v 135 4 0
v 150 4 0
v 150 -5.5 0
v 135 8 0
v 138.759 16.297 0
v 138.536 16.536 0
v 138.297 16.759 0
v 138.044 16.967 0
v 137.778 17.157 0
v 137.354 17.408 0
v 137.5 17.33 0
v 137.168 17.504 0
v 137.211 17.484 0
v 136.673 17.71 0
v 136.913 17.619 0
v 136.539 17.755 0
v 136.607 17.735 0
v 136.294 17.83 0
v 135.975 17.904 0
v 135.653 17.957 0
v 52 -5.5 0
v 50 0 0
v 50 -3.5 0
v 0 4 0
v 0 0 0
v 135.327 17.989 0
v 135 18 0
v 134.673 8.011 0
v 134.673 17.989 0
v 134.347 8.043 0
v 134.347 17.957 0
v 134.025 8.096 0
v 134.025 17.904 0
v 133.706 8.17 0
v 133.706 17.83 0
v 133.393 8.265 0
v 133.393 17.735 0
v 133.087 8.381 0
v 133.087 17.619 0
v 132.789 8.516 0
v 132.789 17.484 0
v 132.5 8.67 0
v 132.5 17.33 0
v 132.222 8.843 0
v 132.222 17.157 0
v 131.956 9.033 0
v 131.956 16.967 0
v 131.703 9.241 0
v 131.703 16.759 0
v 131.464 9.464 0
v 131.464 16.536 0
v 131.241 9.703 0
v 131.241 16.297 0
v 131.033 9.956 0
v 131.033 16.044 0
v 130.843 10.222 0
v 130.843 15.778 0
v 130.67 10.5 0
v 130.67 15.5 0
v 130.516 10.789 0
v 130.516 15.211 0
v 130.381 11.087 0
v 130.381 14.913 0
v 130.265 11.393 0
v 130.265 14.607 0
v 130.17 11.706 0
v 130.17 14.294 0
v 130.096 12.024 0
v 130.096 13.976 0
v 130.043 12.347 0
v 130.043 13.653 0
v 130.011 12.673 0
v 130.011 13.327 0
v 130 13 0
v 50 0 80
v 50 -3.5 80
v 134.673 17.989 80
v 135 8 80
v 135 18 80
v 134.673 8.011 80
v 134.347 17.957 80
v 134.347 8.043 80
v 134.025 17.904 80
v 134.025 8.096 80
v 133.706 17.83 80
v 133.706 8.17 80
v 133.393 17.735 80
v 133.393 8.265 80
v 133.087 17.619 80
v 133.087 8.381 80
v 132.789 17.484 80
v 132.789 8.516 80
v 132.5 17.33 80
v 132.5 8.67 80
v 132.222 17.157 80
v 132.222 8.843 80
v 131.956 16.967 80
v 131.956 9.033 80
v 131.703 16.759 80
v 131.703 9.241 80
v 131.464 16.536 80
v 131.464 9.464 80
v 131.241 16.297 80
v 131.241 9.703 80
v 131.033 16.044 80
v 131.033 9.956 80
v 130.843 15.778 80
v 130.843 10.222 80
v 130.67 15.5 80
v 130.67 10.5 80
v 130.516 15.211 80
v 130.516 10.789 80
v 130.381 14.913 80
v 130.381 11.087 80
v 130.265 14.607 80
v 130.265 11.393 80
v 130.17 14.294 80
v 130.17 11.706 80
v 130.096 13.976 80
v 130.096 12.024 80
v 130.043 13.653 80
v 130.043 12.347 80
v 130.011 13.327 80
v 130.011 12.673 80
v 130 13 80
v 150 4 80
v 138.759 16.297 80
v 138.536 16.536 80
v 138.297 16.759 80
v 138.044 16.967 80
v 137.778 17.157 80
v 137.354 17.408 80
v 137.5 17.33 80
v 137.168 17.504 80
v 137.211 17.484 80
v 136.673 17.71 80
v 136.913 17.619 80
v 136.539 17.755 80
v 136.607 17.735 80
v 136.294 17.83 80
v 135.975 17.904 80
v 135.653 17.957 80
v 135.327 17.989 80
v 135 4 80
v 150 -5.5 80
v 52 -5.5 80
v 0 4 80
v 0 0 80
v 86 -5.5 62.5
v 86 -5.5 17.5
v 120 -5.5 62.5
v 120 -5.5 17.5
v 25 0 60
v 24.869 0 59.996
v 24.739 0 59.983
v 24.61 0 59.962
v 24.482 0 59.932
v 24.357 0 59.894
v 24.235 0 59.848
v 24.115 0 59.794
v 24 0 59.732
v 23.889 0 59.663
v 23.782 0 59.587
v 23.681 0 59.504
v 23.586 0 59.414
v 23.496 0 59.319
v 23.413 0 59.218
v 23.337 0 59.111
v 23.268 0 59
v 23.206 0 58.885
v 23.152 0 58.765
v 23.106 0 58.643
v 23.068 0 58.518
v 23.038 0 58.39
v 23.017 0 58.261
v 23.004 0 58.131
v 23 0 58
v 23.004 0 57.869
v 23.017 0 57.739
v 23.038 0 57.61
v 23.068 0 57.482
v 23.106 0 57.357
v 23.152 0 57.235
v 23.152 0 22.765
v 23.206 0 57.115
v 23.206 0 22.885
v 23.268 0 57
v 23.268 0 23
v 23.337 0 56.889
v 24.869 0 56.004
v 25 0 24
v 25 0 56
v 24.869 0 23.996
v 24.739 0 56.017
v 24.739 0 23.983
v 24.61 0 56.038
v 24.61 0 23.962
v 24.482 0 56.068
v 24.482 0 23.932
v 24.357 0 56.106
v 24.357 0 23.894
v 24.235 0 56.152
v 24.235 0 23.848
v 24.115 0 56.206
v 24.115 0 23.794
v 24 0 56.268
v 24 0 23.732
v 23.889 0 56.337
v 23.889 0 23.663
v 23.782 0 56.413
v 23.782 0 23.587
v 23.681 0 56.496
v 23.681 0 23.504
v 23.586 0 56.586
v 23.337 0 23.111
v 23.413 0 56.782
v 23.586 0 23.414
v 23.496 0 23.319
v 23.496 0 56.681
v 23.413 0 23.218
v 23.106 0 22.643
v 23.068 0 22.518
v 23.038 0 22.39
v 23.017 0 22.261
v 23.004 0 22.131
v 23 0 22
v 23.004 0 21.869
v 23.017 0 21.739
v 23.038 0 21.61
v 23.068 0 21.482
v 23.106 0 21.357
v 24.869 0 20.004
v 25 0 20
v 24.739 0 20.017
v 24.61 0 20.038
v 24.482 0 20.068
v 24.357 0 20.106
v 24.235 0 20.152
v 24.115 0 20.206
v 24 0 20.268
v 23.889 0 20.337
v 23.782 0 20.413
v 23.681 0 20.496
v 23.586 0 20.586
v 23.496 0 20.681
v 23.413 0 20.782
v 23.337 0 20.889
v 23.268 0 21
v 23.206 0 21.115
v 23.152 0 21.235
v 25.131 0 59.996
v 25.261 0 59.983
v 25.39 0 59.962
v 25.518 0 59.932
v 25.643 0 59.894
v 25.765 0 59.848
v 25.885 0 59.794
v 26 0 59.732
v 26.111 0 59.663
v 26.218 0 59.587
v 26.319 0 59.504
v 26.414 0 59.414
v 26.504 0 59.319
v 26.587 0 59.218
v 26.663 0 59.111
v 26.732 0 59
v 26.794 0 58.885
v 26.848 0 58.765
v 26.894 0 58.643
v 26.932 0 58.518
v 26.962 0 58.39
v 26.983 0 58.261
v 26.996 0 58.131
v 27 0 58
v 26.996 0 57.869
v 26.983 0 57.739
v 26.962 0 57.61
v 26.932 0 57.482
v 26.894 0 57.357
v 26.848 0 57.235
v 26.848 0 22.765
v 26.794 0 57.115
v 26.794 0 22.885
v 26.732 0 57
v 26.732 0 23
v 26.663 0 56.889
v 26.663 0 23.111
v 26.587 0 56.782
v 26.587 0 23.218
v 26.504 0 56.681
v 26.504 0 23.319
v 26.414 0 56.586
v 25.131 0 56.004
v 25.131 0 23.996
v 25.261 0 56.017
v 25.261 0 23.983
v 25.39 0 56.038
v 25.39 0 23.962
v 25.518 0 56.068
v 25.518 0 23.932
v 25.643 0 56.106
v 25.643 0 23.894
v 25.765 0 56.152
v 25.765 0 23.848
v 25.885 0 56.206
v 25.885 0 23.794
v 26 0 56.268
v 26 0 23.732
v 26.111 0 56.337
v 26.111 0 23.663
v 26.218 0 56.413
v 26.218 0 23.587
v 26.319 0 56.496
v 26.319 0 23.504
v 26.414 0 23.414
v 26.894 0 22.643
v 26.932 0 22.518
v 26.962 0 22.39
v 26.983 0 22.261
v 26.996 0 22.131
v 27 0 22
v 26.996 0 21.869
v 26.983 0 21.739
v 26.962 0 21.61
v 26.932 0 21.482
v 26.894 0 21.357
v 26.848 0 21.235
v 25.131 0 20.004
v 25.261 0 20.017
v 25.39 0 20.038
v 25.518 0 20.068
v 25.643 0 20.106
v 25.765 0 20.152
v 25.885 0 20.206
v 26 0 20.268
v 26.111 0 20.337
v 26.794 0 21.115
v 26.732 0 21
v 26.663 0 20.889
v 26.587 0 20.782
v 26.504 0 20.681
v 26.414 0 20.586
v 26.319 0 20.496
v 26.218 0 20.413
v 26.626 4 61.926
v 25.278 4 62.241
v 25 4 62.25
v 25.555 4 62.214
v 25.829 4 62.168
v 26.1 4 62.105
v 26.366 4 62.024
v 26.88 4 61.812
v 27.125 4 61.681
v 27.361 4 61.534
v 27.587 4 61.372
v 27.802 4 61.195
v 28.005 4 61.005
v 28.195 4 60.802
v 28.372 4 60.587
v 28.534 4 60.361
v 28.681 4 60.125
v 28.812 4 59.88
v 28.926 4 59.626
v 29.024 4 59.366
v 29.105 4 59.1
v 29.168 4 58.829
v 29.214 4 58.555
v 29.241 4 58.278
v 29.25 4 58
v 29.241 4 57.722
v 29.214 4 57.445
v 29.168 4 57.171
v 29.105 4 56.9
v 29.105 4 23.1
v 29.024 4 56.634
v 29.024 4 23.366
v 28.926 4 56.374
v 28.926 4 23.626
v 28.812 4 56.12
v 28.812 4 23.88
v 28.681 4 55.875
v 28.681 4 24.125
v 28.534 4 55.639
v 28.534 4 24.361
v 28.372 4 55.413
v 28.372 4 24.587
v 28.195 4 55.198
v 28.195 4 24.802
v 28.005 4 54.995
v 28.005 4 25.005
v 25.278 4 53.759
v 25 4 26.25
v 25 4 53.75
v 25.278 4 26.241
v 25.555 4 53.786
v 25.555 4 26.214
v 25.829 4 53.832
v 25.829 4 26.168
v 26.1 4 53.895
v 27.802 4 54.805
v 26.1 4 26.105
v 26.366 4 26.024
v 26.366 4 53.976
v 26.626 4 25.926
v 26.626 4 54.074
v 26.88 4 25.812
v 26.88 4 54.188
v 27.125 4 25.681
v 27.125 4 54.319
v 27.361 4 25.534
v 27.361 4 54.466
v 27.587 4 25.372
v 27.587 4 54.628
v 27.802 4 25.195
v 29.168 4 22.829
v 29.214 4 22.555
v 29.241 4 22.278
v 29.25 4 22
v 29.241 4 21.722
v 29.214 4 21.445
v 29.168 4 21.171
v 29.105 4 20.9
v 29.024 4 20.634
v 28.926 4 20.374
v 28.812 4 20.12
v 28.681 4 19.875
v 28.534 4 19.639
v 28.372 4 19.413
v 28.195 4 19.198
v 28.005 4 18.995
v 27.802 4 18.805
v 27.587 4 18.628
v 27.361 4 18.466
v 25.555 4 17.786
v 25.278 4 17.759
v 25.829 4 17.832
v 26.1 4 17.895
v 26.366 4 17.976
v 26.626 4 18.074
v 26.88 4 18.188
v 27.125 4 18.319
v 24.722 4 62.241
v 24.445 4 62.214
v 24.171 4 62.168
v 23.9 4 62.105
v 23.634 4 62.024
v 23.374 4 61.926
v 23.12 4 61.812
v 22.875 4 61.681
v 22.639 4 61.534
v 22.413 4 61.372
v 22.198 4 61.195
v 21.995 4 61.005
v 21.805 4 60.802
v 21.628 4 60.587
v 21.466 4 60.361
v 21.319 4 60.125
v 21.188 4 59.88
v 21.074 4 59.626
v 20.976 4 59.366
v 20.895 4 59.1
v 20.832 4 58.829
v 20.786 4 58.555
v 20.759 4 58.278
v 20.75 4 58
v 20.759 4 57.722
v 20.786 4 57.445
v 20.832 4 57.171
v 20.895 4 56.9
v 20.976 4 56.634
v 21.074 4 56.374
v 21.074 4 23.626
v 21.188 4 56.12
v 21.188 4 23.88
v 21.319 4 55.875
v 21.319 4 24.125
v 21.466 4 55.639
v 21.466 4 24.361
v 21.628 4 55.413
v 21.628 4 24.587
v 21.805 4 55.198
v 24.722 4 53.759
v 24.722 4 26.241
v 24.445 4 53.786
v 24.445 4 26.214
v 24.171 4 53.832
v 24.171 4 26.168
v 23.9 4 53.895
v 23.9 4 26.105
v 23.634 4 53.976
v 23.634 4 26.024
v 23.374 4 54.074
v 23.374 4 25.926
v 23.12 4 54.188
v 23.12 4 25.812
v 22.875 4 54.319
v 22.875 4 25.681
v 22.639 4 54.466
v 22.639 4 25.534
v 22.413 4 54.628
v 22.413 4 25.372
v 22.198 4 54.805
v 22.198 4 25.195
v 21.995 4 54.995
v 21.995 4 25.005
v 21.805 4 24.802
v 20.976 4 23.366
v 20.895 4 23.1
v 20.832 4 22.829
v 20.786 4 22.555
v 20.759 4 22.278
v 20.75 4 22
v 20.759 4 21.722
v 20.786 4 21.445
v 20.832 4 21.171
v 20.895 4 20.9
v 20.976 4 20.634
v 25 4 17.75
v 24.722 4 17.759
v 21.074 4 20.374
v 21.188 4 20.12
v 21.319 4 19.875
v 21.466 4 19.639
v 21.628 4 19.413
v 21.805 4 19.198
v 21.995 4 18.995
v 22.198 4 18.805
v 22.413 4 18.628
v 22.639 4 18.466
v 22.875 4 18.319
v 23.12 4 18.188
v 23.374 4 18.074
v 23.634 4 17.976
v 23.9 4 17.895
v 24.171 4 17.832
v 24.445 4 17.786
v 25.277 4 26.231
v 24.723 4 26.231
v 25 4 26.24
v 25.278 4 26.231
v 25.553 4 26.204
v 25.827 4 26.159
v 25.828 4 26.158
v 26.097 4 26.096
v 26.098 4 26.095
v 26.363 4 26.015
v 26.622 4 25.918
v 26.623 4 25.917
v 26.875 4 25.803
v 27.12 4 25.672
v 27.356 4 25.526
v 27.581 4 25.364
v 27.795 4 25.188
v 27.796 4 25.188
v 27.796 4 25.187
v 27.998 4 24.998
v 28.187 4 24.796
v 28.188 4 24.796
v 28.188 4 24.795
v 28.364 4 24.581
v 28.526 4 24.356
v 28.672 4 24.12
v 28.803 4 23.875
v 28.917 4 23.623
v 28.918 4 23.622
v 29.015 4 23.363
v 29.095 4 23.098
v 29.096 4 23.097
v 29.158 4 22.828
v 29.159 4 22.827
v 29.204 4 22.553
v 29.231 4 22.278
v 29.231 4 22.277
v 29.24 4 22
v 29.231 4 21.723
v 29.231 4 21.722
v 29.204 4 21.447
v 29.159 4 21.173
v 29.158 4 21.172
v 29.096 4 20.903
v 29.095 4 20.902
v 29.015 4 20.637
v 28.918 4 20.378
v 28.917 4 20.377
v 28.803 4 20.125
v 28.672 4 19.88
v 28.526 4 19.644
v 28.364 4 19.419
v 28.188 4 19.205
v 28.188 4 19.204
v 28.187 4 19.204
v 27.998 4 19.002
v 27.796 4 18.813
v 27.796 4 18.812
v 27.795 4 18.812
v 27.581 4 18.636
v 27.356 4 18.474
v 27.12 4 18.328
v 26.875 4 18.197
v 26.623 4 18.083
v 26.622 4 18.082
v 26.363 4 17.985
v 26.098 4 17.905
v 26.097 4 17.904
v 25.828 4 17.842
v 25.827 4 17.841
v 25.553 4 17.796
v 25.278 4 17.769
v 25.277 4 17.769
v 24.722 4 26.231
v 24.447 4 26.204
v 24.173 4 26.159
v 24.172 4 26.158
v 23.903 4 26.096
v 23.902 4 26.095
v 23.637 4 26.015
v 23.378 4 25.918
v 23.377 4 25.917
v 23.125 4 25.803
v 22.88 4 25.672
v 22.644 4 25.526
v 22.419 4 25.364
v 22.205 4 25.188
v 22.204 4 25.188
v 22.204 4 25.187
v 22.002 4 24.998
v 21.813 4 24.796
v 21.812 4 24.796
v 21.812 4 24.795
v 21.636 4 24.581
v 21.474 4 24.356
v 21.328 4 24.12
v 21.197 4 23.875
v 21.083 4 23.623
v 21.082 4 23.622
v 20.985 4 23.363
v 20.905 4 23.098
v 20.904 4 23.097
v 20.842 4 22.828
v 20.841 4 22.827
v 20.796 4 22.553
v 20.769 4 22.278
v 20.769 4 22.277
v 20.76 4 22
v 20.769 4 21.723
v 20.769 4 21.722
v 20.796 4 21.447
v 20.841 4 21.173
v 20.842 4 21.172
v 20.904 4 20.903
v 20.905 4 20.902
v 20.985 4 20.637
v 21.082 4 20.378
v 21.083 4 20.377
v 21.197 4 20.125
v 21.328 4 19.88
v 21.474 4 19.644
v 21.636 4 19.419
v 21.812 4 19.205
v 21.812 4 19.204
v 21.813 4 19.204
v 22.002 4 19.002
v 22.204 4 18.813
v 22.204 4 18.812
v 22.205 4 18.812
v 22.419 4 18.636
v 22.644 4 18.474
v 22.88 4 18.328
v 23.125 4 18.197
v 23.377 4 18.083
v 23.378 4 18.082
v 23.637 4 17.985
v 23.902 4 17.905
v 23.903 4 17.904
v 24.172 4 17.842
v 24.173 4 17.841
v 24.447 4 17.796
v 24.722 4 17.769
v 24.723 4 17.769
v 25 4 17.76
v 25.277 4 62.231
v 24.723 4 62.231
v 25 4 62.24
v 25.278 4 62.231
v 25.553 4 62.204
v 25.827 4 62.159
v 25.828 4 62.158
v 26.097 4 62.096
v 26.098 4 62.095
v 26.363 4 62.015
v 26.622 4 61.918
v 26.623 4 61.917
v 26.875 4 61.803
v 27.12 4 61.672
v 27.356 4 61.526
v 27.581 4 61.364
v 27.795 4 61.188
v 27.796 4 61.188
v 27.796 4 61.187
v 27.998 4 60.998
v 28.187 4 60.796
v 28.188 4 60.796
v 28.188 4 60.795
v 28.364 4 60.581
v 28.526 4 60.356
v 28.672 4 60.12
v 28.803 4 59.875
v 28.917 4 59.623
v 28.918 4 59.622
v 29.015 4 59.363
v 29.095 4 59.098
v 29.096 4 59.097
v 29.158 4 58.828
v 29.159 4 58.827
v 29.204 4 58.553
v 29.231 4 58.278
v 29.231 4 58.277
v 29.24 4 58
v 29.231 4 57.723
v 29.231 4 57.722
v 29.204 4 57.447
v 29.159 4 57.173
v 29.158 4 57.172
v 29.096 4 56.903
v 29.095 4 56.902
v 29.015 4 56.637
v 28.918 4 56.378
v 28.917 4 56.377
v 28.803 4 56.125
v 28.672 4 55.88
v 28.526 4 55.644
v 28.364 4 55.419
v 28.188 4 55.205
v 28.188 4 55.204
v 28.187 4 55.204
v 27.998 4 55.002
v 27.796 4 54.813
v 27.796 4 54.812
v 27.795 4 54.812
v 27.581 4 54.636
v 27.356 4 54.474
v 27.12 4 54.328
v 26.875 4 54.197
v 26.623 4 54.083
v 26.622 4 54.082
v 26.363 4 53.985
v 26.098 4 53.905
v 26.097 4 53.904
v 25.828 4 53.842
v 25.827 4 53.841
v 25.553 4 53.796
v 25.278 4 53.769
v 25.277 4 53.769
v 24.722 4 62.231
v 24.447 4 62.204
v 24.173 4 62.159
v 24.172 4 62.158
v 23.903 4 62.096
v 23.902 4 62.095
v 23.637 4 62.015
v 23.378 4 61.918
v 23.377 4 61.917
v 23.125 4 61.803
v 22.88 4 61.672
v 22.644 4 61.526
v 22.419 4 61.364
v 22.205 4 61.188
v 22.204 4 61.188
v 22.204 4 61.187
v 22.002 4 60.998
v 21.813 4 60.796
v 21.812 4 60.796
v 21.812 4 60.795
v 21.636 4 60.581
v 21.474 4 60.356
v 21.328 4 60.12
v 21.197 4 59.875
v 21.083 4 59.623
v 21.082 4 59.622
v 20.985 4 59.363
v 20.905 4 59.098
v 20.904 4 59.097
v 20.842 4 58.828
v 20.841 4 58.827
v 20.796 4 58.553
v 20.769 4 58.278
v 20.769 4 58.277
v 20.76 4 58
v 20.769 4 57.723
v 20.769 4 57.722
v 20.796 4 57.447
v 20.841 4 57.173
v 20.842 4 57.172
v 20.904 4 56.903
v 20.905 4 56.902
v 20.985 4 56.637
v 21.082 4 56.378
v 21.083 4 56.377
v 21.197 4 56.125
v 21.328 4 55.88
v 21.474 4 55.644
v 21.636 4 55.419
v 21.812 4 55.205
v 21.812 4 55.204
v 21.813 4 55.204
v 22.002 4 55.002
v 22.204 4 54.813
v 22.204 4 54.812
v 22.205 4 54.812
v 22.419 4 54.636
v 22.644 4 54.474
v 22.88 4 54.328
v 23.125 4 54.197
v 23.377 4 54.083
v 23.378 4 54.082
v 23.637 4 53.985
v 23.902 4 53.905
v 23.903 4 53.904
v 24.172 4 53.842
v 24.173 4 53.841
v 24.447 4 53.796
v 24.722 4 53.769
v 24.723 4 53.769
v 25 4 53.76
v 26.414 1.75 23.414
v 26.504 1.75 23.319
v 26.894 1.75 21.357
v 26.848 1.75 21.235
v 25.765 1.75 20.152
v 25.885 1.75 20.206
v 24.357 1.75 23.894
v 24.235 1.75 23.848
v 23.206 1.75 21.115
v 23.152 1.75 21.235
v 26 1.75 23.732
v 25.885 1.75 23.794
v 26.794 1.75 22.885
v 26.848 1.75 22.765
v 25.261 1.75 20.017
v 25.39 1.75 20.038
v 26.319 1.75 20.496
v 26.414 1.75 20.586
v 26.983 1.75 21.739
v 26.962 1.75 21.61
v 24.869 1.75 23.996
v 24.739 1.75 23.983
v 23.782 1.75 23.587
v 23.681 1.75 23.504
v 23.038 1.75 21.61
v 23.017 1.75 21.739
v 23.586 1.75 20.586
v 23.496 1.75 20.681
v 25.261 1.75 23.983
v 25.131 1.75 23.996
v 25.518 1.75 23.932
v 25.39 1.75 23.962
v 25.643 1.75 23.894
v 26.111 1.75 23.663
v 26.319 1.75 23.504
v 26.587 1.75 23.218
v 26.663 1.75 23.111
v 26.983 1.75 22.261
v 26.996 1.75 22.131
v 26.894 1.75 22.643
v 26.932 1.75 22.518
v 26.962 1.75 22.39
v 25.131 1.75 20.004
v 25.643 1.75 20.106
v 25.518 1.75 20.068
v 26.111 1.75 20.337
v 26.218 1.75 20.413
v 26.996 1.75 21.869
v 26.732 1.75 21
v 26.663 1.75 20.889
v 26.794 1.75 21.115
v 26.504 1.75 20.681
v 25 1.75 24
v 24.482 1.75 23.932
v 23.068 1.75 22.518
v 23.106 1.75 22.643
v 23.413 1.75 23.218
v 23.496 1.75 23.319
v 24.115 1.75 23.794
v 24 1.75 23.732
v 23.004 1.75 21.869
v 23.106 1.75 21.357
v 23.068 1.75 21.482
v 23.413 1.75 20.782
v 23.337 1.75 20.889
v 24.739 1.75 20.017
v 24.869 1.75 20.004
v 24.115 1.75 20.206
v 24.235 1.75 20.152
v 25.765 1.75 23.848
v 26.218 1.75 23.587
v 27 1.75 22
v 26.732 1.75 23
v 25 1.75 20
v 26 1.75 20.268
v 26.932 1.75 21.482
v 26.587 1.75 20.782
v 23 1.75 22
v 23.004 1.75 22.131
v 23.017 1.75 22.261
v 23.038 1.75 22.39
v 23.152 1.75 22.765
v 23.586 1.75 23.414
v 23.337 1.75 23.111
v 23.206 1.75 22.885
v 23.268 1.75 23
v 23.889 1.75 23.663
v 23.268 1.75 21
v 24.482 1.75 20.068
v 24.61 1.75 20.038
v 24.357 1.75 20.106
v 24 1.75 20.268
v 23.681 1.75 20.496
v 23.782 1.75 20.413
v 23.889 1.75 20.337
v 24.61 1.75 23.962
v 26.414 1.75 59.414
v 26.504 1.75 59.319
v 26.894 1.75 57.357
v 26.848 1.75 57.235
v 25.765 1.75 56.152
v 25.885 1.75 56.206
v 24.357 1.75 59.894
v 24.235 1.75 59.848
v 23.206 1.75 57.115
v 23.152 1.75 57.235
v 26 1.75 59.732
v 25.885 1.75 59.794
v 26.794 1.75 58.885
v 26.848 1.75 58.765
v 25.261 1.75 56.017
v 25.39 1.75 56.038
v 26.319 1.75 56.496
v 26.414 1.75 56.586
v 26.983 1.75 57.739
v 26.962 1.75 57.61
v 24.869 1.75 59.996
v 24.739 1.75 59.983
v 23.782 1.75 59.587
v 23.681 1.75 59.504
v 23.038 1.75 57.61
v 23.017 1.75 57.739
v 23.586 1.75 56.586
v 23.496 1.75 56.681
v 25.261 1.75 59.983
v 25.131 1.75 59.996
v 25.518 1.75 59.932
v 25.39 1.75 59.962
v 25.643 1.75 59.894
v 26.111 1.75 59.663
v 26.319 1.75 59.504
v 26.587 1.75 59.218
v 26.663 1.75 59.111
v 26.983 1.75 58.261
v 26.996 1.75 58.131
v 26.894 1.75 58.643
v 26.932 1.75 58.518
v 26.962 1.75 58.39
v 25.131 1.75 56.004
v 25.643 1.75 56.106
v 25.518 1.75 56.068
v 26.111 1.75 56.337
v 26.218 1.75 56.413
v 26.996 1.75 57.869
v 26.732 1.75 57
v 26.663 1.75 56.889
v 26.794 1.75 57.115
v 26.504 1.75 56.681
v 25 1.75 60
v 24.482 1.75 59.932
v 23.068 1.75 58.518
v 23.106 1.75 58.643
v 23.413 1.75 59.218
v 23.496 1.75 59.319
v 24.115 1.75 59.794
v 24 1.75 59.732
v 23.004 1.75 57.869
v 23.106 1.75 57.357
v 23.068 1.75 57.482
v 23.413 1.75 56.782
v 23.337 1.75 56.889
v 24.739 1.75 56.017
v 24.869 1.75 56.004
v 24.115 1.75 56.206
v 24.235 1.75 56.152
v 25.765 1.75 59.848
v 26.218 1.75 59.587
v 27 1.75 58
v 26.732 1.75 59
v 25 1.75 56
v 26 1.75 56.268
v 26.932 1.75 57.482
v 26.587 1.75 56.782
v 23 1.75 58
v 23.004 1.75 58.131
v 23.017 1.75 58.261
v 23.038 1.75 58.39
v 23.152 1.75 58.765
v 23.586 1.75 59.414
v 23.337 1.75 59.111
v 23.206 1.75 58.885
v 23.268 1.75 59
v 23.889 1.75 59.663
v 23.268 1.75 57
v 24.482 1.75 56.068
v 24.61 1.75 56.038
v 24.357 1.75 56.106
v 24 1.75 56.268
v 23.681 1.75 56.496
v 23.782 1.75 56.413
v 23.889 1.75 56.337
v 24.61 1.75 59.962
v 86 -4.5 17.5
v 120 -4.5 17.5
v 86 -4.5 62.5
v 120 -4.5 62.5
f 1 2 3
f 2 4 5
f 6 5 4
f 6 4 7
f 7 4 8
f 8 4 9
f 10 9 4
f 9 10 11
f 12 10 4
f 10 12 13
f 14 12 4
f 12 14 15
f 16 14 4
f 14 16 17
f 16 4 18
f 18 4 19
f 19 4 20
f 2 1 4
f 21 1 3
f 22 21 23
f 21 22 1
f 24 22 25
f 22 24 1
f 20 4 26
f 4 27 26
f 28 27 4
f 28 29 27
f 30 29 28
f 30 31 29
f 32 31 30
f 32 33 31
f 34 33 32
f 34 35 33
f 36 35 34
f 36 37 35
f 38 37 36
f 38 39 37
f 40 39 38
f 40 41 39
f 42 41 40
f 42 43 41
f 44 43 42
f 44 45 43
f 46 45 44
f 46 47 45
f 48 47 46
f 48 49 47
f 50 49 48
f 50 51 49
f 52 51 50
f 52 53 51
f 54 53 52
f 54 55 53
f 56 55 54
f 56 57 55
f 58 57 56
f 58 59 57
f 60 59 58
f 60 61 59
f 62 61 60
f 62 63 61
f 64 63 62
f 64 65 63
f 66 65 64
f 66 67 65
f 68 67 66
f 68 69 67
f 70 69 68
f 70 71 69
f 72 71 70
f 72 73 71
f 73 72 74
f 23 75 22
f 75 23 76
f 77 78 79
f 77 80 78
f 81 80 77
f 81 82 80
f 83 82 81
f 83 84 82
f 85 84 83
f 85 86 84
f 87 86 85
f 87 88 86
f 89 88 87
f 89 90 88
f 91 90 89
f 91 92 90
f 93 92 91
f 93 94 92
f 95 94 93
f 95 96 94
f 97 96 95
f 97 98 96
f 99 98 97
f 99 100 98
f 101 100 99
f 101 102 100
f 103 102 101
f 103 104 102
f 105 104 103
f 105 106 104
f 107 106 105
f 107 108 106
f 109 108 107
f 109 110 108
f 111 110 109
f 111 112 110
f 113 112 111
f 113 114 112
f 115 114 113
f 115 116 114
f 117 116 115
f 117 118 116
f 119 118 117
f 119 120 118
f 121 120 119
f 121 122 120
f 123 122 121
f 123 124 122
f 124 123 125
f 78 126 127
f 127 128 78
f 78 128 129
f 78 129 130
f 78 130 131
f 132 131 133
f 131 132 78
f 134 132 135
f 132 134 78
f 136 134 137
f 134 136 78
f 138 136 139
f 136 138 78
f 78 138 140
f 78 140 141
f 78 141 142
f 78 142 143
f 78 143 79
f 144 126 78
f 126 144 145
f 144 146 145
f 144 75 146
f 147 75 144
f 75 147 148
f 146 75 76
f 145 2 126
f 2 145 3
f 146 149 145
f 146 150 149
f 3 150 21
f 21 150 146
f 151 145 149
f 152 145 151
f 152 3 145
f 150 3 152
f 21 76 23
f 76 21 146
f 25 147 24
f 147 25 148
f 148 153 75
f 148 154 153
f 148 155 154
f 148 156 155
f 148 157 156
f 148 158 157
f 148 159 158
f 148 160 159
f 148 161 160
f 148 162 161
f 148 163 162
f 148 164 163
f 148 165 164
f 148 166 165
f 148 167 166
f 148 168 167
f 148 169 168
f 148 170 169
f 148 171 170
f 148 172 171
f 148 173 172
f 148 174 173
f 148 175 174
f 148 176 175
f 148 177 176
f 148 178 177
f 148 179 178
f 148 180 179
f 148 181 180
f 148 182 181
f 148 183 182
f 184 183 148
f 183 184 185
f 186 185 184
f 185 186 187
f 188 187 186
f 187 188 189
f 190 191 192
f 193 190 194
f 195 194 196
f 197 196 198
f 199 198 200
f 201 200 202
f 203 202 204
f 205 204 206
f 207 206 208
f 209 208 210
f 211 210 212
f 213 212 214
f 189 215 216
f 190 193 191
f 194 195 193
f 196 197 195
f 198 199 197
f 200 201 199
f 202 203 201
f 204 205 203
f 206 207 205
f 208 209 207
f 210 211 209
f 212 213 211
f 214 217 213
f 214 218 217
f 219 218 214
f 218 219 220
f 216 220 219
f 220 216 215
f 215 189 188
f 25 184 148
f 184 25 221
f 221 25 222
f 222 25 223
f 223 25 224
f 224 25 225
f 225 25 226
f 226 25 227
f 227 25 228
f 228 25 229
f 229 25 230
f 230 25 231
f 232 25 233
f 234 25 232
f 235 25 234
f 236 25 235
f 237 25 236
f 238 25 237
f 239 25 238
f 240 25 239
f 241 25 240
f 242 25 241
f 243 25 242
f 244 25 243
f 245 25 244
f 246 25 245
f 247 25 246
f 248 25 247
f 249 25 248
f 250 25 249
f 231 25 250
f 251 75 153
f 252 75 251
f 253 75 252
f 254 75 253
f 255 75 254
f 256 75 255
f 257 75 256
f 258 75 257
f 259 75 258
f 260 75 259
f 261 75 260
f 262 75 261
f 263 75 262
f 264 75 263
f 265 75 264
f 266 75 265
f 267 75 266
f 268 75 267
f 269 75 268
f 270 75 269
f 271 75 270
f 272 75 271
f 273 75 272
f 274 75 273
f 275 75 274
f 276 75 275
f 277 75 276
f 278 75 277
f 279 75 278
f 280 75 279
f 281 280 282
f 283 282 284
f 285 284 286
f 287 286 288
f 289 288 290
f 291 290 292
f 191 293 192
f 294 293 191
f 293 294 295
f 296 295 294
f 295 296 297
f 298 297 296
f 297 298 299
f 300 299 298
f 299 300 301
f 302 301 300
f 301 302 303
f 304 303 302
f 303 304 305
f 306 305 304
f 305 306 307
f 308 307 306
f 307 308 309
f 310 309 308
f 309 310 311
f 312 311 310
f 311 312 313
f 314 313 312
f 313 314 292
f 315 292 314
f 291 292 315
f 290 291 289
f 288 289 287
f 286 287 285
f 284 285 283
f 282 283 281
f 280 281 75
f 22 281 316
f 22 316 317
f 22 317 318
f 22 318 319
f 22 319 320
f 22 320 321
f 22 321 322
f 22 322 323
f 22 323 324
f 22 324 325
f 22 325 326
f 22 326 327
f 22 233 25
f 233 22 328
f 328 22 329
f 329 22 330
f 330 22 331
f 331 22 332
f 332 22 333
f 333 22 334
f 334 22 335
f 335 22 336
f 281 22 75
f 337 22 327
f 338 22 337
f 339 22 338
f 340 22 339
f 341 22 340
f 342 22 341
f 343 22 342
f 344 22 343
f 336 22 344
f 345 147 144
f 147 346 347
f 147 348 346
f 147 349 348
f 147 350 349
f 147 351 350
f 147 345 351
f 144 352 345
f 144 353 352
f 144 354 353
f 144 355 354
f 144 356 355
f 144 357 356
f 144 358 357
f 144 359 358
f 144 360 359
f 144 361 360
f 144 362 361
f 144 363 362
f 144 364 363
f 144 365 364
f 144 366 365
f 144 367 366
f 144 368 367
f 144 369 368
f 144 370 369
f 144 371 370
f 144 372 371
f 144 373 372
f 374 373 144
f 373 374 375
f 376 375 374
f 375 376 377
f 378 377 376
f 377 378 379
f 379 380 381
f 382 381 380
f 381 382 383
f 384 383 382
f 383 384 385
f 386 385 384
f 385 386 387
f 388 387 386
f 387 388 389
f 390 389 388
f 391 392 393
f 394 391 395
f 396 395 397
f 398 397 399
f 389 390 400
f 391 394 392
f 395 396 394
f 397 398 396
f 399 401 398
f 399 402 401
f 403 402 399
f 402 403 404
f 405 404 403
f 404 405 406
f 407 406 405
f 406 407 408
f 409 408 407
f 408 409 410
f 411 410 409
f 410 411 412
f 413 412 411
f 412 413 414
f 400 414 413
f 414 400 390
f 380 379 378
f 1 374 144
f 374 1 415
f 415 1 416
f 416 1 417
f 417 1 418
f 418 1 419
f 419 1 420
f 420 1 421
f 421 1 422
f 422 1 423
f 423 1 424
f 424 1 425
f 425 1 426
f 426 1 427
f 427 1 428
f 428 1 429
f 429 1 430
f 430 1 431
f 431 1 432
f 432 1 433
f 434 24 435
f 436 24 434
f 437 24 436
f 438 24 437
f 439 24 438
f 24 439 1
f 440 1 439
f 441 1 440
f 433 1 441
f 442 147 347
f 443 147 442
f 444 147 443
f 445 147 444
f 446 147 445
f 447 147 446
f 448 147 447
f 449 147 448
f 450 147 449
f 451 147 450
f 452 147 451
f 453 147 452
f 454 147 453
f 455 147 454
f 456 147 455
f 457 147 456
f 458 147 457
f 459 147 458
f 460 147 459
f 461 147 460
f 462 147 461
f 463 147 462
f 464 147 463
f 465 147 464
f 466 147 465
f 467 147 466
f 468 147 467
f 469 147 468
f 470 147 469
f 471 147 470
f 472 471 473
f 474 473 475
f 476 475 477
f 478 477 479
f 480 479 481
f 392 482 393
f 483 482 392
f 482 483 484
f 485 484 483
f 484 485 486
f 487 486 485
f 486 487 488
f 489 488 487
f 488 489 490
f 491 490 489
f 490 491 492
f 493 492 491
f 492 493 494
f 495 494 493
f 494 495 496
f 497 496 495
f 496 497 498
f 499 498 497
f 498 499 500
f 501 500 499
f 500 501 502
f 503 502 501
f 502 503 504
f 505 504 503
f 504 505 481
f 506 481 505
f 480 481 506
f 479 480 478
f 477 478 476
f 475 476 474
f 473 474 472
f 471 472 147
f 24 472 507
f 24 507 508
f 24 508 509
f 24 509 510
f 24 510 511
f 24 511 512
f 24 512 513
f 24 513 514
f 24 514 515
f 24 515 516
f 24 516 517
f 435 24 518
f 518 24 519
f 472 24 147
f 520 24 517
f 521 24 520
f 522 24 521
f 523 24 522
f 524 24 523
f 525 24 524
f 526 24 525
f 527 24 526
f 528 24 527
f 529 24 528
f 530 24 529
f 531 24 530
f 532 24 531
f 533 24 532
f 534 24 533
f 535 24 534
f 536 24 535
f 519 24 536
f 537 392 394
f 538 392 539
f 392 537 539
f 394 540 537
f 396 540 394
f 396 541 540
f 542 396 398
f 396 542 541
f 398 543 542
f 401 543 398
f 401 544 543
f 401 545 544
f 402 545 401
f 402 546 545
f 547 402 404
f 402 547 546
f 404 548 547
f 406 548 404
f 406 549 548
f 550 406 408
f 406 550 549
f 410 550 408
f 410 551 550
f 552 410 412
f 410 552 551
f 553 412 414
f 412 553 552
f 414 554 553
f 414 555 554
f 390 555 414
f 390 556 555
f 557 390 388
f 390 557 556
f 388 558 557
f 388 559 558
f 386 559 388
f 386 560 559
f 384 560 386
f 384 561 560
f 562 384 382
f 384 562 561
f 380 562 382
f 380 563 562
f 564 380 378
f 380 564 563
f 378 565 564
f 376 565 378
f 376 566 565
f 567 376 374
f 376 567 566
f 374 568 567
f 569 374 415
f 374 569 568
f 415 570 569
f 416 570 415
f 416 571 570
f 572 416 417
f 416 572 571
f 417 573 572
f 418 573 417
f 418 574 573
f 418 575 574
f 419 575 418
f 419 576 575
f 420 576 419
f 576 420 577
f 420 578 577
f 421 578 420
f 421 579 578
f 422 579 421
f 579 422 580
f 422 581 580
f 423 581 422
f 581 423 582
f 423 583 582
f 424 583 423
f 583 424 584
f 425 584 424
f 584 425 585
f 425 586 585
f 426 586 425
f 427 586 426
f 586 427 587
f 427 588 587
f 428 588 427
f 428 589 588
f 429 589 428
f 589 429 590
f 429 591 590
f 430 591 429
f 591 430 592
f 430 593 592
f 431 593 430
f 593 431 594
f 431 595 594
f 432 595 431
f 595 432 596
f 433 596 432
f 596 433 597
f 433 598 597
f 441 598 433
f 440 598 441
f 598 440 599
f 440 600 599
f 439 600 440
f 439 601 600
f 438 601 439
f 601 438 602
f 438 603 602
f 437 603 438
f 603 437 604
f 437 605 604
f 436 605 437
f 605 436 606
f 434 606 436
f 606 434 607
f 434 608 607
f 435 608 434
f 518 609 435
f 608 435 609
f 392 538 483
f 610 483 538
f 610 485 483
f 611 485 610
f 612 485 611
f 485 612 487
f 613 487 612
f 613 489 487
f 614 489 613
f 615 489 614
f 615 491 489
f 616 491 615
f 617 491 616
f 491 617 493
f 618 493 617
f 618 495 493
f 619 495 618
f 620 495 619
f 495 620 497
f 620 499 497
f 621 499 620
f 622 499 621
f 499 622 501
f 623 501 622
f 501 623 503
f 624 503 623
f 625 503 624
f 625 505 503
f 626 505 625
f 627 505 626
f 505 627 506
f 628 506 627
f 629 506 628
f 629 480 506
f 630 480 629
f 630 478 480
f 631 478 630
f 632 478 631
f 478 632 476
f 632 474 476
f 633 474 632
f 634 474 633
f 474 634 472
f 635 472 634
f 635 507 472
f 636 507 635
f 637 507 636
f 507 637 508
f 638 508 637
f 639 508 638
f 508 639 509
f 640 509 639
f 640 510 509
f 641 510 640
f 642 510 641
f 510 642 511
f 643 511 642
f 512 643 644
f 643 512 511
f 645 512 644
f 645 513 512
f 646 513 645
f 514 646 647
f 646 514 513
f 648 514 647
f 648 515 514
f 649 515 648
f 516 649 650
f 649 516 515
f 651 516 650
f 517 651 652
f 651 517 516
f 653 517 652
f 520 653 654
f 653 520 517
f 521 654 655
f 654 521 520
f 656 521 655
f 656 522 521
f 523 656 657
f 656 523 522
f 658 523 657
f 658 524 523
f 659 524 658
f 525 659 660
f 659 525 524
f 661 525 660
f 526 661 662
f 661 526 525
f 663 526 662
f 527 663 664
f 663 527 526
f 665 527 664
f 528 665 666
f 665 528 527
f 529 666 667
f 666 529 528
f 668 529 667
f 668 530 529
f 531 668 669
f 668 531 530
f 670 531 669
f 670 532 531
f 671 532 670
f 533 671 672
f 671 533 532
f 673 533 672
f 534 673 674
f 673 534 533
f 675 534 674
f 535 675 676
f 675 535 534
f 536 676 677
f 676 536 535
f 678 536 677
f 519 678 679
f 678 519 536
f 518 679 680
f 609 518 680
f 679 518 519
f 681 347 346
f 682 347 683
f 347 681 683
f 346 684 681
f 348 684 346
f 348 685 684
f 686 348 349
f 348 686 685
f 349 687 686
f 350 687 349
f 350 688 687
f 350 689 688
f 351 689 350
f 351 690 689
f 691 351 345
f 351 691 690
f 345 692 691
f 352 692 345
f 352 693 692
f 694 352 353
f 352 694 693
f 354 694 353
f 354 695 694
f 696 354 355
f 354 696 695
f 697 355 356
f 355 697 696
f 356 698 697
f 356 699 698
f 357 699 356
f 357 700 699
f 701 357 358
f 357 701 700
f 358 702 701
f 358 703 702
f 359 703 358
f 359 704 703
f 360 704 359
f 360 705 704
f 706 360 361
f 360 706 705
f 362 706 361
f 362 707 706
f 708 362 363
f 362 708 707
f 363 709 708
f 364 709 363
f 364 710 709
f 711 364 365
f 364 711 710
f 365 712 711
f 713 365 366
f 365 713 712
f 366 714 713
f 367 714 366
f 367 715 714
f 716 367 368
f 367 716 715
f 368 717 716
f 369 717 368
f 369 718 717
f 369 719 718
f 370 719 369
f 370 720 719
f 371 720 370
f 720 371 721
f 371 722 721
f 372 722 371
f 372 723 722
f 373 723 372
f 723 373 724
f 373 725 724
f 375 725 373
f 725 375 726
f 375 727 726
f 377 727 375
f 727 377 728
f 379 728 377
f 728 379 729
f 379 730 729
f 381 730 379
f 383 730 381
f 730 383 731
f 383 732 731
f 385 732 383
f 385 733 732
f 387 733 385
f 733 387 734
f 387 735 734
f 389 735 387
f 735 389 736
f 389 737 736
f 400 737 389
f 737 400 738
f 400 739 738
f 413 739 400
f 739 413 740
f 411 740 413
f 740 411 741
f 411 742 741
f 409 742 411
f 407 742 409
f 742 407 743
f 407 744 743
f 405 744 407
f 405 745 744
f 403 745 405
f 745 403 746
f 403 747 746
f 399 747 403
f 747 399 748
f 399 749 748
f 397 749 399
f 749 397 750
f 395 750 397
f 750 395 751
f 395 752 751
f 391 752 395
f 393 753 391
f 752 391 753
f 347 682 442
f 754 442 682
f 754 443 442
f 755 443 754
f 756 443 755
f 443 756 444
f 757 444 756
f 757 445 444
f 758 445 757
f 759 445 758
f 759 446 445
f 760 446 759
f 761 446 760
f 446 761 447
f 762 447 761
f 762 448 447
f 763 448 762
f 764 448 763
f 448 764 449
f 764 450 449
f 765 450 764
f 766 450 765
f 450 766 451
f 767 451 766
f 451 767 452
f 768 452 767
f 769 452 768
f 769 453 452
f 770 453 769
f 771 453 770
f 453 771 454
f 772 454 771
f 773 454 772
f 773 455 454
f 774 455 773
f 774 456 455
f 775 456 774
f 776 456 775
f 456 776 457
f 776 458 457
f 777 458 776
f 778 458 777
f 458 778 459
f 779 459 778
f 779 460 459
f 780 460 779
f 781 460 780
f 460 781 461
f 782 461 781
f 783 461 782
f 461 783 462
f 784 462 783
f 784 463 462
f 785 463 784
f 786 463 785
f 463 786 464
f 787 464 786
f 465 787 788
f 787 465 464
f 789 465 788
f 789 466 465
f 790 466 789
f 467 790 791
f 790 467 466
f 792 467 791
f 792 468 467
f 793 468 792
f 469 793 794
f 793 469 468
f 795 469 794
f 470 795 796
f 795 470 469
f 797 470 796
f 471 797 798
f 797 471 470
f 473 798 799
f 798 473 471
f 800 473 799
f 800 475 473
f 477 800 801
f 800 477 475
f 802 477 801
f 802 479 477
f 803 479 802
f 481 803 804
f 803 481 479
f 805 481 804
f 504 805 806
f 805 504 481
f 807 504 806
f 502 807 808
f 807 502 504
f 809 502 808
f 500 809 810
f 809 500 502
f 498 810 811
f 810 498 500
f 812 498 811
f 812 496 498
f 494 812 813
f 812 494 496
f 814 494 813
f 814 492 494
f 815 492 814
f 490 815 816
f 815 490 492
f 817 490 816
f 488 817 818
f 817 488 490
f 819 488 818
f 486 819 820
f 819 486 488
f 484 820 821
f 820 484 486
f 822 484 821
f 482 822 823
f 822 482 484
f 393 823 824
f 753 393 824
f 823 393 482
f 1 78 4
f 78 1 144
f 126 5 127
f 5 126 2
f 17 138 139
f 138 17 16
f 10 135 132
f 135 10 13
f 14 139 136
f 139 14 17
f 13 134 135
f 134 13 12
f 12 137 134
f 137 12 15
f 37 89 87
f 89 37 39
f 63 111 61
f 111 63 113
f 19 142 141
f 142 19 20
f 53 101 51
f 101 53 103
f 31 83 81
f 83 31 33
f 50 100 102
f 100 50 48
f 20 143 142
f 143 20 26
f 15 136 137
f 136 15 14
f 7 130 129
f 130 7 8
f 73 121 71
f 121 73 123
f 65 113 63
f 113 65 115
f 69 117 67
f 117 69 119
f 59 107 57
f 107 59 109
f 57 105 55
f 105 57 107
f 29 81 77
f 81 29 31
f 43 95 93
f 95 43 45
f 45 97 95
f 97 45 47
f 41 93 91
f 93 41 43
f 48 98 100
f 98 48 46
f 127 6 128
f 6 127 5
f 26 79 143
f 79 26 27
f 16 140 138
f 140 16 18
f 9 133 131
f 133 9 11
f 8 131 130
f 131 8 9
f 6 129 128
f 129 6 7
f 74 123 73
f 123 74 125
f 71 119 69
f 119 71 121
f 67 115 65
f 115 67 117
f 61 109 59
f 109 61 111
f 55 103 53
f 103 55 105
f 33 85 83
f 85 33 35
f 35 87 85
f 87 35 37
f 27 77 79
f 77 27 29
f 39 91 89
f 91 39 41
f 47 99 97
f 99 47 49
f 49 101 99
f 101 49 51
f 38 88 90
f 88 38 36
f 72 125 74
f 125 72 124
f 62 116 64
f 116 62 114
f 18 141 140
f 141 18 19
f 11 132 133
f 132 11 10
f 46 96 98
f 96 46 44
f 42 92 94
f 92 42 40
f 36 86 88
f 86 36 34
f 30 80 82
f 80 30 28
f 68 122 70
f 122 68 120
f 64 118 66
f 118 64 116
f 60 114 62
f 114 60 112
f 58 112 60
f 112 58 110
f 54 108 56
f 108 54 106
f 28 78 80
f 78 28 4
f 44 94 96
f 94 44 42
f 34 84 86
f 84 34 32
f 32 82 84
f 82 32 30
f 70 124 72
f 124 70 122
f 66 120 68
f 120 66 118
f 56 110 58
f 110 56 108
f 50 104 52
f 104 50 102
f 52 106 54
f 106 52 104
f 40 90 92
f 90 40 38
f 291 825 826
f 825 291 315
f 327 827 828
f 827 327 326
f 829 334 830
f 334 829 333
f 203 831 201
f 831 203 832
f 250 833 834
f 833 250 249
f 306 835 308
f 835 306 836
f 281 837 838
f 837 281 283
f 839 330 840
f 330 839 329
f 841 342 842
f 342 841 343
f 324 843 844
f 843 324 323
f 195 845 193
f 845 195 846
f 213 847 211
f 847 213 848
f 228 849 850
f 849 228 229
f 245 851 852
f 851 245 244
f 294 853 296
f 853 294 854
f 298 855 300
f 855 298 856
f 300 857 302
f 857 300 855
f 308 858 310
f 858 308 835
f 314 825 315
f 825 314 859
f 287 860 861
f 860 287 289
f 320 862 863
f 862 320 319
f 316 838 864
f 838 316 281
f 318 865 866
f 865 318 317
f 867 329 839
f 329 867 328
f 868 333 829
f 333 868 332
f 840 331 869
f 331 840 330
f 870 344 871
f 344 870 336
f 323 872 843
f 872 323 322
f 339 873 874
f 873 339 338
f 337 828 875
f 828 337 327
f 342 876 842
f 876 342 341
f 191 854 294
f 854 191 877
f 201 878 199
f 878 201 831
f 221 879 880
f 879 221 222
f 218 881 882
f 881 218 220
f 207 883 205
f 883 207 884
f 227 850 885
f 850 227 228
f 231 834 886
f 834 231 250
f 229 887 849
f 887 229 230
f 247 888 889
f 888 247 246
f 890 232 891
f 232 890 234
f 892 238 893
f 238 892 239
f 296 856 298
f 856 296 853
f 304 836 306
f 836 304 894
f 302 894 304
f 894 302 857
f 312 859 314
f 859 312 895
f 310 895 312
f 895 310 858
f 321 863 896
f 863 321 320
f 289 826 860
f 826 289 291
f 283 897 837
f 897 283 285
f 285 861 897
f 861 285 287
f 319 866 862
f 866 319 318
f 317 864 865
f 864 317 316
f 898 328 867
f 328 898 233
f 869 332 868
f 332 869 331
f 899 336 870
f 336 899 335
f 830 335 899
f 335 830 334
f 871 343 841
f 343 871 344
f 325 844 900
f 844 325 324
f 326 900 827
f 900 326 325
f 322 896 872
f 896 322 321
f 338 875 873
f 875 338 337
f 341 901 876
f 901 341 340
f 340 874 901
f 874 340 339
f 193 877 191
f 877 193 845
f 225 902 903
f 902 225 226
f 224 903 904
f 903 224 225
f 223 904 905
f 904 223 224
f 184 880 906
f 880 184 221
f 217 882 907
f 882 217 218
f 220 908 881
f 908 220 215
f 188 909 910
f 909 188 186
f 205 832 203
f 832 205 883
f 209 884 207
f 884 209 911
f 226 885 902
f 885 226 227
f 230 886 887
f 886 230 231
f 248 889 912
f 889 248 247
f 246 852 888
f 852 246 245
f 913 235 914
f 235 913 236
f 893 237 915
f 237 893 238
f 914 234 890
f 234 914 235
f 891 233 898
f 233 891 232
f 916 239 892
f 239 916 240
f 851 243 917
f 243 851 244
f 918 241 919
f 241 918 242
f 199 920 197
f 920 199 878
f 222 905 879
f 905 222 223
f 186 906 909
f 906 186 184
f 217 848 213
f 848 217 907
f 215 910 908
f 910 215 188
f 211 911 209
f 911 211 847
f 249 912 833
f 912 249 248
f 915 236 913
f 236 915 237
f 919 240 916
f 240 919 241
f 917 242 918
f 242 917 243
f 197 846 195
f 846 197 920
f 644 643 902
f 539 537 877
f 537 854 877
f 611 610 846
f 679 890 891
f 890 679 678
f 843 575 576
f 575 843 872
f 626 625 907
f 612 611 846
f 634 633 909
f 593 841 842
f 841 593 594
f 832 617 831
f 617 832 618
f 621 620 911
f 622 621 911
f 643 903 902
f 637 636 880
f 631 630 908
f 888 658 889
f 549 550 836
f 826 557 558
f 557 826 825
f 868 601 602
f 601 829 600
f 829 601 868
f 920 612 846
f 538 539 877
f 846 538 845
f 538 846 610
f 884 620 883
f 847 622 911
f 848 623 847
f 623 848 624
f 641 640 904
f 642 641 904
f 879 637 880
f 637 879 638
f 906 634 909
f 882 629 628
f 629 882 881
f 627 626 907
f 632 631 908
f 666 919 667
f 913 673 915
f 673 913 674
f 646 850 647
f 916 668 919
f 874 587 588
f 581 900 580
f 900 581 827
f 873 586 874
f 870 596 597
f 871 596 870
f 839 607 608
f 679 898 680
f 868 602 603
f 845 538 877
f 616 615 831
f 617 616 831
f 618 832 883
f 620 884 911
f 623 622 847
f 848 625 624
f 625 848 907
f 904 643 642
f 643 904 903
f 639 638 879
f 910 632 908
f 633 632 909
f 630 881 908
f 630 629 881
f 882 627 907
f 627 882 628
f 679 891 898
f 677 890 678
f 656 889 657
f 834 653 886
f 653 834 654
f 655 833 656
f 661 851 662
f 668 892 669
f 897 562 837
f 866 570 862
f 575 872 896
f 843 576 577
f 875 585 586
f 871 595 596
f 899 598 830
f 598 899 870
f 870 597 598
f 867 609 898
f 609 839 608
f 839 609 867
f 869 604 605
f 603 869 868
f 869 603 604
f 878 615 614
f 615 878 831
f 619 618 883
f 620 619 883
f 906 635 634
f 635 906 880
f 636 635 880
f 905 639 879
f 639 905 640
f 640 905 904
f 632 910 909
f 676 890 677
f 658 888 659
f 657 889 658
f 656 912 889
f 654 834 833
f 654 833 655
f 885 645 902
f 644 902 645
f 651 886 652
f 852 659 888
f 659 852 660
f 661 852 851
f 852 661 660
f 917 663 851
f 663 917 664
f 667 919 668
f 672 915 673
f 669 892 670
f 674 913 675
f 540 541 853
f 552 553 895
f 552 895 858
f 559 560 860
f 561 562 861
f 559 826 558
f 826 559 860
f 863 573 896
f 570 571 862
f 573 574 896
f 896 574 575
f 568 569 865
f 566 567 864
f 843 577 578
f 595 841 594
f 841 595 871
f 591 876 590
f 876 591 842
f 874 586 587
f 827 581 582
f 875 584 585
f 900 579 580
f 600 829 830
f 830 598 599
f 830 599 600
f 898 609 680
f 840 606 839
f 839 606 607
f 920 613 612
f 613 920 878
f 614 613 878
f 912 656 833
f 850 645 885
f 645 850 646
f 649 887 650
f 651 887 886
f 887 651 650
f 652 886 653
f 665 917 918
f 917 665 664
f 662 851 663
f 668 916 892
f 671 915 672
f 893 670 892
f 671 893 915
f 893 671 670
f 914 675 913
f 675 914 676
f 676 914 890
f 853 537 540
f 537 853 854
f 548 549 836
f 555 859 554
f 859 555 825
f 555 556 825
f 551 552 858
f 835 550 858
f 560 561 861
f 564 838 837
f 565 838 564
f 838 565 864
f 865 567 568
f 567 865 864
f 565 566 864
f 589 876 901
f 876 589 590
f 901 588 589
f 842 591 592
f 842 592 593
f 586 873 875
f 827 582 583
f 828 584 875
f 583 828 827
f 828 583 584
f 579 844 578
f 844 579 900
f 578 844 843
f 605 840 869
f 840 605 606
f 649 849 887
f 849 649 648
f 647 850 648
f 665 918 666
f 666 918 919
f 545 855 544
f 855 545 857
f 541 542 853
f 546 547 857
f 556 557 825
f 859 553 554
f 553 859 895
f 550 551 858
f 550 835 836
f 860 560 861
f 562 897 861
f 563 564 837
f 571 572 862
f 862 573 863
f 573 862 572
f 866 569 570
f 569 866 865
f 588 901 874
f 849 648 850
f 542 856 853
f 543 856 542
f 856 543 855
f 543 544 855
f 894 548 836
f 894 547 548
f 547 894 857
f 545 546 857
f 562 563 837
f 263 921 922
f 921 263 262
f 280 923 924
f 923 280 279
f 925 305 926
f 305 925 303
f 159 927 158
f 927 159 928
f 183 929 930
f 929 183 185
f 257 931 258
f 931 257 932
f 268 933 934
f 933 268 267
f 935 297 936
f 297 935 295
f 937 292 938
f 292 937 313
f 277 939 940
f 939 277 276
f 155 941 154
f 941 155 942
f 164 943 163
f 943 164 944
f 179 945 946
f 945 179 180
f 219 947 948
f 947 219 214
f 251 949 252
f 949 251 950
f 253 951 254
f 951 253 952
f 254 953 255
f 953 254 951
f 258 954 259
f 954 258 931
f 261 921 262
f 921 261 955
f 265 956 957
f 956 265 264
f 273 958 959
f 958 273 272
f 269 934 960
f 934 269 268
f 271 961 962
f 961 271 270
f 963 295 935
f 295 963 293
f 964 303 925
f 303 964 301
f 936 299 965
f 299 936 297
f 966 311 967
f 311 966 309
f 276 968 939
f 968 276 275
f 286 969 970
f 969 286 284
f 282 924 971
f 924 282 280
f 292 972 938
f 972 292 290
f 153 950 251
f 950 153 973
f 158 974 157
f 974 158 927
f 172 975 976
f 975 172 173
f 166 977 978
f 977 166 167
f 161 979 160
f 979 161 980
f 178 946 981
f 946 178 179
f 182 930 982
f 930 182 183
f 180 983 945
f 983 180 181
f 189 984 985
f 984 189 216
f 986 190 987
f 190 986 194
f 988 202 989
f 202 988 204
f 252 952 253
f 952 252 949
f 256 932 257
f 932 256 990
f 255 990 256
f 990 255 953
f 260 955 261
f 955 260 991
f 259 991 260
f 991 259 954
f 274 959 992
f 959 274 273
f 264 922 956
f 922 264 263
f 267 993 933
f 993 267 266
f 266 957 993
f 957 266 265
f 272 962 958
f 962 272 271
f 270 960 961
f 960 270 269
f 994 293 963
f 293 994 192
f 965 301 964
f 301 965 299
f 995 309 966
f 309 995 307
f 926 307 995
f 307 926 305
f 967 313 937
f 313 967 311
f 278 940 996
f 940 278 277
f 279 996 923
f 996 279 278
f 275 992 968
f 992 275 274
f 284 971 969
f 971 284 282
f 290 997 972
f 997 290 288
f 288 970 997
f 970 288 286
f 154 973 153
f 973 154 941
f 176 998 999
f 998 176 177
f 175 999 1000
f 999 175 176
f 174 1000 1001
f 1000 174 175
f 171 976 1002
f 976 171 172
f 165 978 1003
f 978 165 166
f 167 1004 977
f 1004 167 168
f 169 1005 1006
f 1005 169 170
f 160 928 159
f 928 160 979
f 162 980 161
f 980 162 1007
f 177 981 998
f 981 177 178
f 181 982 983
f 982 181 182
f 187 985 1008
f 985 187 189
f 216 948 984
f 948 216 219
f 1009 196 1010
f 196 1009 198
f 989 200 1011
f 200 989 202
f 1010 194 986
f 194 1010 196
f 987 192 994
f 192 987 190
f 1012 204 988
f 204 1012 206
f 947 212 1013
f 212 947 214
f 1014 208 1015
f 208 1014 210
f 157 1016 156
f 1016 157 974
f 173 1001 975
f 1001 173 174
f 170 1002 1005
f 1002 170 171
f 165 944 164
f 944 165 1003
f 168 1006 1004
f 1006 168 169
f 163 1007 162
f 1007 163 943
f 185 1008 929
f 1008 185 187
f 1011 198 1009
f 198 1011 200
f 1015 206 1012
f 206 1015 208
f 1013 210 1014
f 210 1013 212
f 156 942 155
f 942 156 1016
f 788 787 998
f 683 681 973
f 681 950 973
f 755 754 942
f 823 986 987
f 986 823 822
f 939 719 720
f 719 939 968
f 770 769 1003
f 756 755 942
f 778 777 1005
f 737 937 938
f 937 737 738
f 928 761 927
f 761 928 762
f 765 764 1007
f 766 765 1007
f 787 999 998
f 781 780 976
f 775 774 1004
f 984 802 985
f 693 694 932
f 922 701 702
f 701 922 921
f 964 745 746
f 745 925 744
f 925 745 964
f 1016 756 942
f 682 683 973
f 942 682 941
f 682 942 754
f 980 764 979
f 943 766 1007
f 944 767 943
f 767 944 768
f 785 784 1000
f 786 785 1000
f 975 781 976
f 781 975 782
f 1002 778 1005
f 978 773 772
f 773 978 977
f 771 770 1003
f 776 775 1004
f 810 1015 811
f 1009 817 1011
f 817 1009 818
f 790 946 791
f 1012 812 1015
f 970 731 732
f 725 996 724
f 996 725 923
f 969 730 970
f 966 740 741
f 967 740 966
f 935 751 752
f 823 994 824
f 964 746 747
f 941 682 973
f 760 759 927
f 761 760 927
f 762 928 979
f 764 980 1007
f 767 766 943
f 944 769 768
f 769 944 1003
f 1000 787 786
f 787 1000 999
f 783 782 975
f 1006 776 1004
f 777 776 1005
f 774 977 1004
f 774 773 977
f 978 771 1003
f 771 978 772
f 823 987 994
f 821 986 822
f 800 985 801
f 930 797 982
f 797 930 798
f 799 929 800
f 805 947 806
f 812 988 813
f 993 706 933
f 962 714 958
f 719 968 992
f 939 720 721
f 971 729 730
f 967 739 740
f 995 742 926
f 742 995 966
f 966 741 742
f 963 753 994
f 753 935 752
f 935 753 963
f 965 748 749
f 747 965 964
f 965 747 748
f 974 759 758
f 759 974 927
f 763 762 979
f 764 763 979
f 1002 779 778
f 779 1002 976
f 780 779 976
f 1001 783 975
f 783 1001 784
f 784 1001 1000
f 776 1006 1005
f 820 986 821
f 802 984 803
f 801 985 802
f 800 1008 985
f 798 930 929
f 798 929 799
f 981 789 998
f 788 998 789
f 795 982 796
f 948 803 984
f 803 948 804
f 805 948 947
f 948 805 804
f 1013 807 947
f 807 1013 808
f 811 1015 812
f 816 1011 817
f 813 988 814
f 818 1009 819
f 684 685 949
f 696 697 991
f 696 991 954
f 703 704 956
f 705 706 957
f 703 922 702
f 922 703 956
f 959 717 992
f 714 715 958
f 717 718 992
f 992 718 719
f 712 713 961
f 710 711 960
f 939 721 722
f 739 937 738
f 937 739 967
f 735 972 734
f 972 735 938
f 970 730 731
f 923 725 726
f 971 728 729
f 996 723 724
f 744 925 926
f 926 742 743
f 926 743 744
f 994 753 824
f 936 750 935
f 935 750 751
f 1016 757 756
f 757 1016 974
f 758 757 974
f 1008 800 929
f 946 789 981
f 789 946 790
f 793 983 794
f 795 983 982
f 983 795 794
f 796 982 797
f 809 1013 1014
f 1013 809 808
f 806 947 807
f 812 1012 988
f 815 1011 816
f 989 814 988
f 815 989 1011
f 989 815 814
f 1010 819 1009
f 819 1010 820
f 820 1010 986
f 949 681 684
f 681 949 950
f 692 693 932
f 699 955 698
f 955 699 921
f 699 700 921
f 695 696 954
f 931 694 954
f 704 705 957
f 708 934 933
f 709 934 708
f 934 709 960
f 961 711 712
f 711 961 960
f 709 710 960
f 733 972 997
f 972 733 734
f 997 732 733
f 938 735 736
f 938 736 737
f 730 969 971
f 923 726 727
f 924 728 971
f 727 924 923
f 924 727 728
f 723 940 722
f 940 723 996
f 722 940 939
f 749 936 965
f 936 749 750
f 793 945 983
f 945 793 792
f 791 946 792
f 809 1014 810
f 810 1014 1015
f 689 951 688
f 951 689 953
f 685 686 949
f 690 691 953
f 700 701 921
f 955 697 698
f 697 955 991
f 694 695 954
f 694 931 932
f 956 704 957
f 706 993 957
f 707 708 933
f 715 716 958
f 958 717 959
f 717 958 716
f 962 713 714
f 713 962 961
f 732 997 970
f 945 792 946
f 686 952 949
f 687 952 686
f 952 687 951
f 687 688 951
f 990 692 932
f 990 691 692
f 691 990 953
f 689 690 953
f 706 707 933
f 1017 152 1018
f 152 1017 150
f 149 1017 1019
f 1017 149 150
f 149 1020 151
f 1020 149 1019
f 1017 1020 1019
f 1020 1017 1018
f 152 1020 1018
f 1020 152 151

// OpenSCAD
// Waste food caddy hook — screws to the inside of a cupboard door.
// A round rail stands off from a back plate on a web; the caddy's rear hook
// drops over the rail into the slot between rail and plate.
//
// Modelling axes: X = along the rail, Y = out from the door (y = 0 is the
// door frame face; the recessed panel is at y = -panel_recess), Z = up.
// print_upright rotates it to stand on one end (rail profile on the bed) so
// the rail needs no support and layer lines run across the bending load.
// The plate extends upward so the screws go into the solid frame of a shaker
// door rather than its thin recessed panel.

// ---------- parameters ----------
length        = 80;    // overall width along the door (rail must not exceed 90)
plate_t       = 4;     // back plate thickness — 4 walls on a 0.6 mm nozzle print this solid

// Shaker door: the lower plate sits in the recessed centre panel, the top on the frame.
panel_recess  = 5.5;   // depth of the panel below the frame face (rear packing thickness)
frame_h       = 50;    // thin top section that screws to the door frame
step_to_rail  = 80;    // thick section: from the step down to the top of the rail
step_chamfer  = 2;     // clears the moulding / fillet where panel meets frame

rail_d        = 10;    // rail diameter
below_rail    = 10;    // solid bracket from the rail underside down to the plate bottom
slot_w        = 4;     // gap between rail and plate — caddy's hook plastic is < 1 mm

hole_d        = 4;     // screw clearance (No.6 / 3.5 mm wood screw)
head_d        = 8.5;   // countersink diameter at the front face
hole_from_top = frame_h / 2;   // screw hole distance below the plate top (default: centred on the frame section)
hole_inset    = 22;    // screw hole distance from each end

// Optional shallow pocket in the rear packing for a piece of double-sided tape.
tape_recess   = true;
tape_w        = 45;    // along the rail, centred
tape_h        = 34;    // vertical
tape_depth    = 1;
tape_from_bottom = 30; // plate bottom edge to the bottom of the pocket

print_upright = true;

// Test piece: a thin full-height slice of the profile — the same layers as the
// full part when printed upright, just fewer of them.
test_piece    = false;
test_len      = 10;    // slice width along the rail

$fn = 96;

// ---------- derived ----------
rail_r = rail_d / 2;
rail_z = below_rail + rail_r;
panel_top_z = below_rail + rail_d + step_to_rail;  // height of the step (panel's top edge)
plate_h = panel_top_z + frame_h;
rail_y = plate_t + slot_w + rail_r;   // rail centre distance from the door
cs_depth = (head_d - hole_d) / 2;     // 90° countersink
hole_z = plate_h - hole_from_top;
assert(hole_z - head_d / 2 > panel_top_z, "screw holes must sit above the panel, on the frame");
assert(!tape_recess || tape_from_bottom + tape_h < panel_top_z - step_chamfer, "tape pocket must sit within the rear packing");

// ---------- geometry ----------
// Every feature runs the full length with square ends, so printed upright the
// ends are flush and there are no overhangs.
module plate() {
    cube([length, plate_t, plate_h]);
}

// Rear packing that fills the recessed panel, so the plate bears flat on it.
module panel_packing() {
    difference() {
        translate([0, -panel_recess, 0]) cube([length, panel_recess + 1, panel_top_z]);
        translate([length / 2, -panel_recess, panel_top_z]) rotate([45, 0, 0])
            cube([length + 2, step_chamfer * sqrt(2), step_chamfer * sqrt(2)], center = true);
    }
}

module rail() {
    translate([0, rail_y, rail_z]) rotate([0, 90, 0]) cylinder(r = rail_r, h = length);
}

// Bracket joining the rail to the plate: flat on top at the rail centre (so the
// slot stays open above) and an angled underside running from the plate bottom
// tangent to the rail. Drawn as a 2D (Y, Z) profile, extruded along X.
module web() {
    rotate([90, 0, 90])
        linear_extrude(length)
            hull() {
                translate([plate_t - 1, 0]) square([1, rail_z]);
                intersection() {
                    translate([rail_y, rail_z]) circle(r = rail_r);
                    translate([rail_y - rail_r, rail_z - rail_r]) square([rail_d, rail_r]);
                }
            }
}

module screw_hole() {
    translate([0, -1, 0]) rotate([-90, 0, 0]) cylinder(d = hole_d, h = plate_t + 2);
    translate([0, plate_t - cs_depth, 0]) rotate([-90, 0, 0])
        cylinder(d1 = hole_d, d2 = head_d, h = cs_depth + 0.01);
    translate([0, plate_t, 0]) rotate([-90, 0, 0]) cylinder(d = head_d, h = 1);
}

module hook() {
    difference() {
        union() {
            plate();
            panel_packing();
            web();
            rail();
        }
        for (x = [hole_inset, length - hole_inset])
            translate([x, 0, hole_z]) screw_hole();
        if (tape_recess)
            translate([(length - tape_w) / 2, -panel_recess - 1, tape_from_bottom])
                cube([tape_w, tape_depth + 1, tape_h]);
    }
}

module part() {
    if (test_piece)
        intersection() {
            hook();
            translate([0, -panel_recess - 1, -1]) cube([test_len, rail_y + rail_r + panel_recess + 2, plate_h + 2]);
        }
    else
        hook();
}

if (print_upright)
    translate([plate_h, 0, 0]) rotate([0, -90, 0]) part();
else
    part();
